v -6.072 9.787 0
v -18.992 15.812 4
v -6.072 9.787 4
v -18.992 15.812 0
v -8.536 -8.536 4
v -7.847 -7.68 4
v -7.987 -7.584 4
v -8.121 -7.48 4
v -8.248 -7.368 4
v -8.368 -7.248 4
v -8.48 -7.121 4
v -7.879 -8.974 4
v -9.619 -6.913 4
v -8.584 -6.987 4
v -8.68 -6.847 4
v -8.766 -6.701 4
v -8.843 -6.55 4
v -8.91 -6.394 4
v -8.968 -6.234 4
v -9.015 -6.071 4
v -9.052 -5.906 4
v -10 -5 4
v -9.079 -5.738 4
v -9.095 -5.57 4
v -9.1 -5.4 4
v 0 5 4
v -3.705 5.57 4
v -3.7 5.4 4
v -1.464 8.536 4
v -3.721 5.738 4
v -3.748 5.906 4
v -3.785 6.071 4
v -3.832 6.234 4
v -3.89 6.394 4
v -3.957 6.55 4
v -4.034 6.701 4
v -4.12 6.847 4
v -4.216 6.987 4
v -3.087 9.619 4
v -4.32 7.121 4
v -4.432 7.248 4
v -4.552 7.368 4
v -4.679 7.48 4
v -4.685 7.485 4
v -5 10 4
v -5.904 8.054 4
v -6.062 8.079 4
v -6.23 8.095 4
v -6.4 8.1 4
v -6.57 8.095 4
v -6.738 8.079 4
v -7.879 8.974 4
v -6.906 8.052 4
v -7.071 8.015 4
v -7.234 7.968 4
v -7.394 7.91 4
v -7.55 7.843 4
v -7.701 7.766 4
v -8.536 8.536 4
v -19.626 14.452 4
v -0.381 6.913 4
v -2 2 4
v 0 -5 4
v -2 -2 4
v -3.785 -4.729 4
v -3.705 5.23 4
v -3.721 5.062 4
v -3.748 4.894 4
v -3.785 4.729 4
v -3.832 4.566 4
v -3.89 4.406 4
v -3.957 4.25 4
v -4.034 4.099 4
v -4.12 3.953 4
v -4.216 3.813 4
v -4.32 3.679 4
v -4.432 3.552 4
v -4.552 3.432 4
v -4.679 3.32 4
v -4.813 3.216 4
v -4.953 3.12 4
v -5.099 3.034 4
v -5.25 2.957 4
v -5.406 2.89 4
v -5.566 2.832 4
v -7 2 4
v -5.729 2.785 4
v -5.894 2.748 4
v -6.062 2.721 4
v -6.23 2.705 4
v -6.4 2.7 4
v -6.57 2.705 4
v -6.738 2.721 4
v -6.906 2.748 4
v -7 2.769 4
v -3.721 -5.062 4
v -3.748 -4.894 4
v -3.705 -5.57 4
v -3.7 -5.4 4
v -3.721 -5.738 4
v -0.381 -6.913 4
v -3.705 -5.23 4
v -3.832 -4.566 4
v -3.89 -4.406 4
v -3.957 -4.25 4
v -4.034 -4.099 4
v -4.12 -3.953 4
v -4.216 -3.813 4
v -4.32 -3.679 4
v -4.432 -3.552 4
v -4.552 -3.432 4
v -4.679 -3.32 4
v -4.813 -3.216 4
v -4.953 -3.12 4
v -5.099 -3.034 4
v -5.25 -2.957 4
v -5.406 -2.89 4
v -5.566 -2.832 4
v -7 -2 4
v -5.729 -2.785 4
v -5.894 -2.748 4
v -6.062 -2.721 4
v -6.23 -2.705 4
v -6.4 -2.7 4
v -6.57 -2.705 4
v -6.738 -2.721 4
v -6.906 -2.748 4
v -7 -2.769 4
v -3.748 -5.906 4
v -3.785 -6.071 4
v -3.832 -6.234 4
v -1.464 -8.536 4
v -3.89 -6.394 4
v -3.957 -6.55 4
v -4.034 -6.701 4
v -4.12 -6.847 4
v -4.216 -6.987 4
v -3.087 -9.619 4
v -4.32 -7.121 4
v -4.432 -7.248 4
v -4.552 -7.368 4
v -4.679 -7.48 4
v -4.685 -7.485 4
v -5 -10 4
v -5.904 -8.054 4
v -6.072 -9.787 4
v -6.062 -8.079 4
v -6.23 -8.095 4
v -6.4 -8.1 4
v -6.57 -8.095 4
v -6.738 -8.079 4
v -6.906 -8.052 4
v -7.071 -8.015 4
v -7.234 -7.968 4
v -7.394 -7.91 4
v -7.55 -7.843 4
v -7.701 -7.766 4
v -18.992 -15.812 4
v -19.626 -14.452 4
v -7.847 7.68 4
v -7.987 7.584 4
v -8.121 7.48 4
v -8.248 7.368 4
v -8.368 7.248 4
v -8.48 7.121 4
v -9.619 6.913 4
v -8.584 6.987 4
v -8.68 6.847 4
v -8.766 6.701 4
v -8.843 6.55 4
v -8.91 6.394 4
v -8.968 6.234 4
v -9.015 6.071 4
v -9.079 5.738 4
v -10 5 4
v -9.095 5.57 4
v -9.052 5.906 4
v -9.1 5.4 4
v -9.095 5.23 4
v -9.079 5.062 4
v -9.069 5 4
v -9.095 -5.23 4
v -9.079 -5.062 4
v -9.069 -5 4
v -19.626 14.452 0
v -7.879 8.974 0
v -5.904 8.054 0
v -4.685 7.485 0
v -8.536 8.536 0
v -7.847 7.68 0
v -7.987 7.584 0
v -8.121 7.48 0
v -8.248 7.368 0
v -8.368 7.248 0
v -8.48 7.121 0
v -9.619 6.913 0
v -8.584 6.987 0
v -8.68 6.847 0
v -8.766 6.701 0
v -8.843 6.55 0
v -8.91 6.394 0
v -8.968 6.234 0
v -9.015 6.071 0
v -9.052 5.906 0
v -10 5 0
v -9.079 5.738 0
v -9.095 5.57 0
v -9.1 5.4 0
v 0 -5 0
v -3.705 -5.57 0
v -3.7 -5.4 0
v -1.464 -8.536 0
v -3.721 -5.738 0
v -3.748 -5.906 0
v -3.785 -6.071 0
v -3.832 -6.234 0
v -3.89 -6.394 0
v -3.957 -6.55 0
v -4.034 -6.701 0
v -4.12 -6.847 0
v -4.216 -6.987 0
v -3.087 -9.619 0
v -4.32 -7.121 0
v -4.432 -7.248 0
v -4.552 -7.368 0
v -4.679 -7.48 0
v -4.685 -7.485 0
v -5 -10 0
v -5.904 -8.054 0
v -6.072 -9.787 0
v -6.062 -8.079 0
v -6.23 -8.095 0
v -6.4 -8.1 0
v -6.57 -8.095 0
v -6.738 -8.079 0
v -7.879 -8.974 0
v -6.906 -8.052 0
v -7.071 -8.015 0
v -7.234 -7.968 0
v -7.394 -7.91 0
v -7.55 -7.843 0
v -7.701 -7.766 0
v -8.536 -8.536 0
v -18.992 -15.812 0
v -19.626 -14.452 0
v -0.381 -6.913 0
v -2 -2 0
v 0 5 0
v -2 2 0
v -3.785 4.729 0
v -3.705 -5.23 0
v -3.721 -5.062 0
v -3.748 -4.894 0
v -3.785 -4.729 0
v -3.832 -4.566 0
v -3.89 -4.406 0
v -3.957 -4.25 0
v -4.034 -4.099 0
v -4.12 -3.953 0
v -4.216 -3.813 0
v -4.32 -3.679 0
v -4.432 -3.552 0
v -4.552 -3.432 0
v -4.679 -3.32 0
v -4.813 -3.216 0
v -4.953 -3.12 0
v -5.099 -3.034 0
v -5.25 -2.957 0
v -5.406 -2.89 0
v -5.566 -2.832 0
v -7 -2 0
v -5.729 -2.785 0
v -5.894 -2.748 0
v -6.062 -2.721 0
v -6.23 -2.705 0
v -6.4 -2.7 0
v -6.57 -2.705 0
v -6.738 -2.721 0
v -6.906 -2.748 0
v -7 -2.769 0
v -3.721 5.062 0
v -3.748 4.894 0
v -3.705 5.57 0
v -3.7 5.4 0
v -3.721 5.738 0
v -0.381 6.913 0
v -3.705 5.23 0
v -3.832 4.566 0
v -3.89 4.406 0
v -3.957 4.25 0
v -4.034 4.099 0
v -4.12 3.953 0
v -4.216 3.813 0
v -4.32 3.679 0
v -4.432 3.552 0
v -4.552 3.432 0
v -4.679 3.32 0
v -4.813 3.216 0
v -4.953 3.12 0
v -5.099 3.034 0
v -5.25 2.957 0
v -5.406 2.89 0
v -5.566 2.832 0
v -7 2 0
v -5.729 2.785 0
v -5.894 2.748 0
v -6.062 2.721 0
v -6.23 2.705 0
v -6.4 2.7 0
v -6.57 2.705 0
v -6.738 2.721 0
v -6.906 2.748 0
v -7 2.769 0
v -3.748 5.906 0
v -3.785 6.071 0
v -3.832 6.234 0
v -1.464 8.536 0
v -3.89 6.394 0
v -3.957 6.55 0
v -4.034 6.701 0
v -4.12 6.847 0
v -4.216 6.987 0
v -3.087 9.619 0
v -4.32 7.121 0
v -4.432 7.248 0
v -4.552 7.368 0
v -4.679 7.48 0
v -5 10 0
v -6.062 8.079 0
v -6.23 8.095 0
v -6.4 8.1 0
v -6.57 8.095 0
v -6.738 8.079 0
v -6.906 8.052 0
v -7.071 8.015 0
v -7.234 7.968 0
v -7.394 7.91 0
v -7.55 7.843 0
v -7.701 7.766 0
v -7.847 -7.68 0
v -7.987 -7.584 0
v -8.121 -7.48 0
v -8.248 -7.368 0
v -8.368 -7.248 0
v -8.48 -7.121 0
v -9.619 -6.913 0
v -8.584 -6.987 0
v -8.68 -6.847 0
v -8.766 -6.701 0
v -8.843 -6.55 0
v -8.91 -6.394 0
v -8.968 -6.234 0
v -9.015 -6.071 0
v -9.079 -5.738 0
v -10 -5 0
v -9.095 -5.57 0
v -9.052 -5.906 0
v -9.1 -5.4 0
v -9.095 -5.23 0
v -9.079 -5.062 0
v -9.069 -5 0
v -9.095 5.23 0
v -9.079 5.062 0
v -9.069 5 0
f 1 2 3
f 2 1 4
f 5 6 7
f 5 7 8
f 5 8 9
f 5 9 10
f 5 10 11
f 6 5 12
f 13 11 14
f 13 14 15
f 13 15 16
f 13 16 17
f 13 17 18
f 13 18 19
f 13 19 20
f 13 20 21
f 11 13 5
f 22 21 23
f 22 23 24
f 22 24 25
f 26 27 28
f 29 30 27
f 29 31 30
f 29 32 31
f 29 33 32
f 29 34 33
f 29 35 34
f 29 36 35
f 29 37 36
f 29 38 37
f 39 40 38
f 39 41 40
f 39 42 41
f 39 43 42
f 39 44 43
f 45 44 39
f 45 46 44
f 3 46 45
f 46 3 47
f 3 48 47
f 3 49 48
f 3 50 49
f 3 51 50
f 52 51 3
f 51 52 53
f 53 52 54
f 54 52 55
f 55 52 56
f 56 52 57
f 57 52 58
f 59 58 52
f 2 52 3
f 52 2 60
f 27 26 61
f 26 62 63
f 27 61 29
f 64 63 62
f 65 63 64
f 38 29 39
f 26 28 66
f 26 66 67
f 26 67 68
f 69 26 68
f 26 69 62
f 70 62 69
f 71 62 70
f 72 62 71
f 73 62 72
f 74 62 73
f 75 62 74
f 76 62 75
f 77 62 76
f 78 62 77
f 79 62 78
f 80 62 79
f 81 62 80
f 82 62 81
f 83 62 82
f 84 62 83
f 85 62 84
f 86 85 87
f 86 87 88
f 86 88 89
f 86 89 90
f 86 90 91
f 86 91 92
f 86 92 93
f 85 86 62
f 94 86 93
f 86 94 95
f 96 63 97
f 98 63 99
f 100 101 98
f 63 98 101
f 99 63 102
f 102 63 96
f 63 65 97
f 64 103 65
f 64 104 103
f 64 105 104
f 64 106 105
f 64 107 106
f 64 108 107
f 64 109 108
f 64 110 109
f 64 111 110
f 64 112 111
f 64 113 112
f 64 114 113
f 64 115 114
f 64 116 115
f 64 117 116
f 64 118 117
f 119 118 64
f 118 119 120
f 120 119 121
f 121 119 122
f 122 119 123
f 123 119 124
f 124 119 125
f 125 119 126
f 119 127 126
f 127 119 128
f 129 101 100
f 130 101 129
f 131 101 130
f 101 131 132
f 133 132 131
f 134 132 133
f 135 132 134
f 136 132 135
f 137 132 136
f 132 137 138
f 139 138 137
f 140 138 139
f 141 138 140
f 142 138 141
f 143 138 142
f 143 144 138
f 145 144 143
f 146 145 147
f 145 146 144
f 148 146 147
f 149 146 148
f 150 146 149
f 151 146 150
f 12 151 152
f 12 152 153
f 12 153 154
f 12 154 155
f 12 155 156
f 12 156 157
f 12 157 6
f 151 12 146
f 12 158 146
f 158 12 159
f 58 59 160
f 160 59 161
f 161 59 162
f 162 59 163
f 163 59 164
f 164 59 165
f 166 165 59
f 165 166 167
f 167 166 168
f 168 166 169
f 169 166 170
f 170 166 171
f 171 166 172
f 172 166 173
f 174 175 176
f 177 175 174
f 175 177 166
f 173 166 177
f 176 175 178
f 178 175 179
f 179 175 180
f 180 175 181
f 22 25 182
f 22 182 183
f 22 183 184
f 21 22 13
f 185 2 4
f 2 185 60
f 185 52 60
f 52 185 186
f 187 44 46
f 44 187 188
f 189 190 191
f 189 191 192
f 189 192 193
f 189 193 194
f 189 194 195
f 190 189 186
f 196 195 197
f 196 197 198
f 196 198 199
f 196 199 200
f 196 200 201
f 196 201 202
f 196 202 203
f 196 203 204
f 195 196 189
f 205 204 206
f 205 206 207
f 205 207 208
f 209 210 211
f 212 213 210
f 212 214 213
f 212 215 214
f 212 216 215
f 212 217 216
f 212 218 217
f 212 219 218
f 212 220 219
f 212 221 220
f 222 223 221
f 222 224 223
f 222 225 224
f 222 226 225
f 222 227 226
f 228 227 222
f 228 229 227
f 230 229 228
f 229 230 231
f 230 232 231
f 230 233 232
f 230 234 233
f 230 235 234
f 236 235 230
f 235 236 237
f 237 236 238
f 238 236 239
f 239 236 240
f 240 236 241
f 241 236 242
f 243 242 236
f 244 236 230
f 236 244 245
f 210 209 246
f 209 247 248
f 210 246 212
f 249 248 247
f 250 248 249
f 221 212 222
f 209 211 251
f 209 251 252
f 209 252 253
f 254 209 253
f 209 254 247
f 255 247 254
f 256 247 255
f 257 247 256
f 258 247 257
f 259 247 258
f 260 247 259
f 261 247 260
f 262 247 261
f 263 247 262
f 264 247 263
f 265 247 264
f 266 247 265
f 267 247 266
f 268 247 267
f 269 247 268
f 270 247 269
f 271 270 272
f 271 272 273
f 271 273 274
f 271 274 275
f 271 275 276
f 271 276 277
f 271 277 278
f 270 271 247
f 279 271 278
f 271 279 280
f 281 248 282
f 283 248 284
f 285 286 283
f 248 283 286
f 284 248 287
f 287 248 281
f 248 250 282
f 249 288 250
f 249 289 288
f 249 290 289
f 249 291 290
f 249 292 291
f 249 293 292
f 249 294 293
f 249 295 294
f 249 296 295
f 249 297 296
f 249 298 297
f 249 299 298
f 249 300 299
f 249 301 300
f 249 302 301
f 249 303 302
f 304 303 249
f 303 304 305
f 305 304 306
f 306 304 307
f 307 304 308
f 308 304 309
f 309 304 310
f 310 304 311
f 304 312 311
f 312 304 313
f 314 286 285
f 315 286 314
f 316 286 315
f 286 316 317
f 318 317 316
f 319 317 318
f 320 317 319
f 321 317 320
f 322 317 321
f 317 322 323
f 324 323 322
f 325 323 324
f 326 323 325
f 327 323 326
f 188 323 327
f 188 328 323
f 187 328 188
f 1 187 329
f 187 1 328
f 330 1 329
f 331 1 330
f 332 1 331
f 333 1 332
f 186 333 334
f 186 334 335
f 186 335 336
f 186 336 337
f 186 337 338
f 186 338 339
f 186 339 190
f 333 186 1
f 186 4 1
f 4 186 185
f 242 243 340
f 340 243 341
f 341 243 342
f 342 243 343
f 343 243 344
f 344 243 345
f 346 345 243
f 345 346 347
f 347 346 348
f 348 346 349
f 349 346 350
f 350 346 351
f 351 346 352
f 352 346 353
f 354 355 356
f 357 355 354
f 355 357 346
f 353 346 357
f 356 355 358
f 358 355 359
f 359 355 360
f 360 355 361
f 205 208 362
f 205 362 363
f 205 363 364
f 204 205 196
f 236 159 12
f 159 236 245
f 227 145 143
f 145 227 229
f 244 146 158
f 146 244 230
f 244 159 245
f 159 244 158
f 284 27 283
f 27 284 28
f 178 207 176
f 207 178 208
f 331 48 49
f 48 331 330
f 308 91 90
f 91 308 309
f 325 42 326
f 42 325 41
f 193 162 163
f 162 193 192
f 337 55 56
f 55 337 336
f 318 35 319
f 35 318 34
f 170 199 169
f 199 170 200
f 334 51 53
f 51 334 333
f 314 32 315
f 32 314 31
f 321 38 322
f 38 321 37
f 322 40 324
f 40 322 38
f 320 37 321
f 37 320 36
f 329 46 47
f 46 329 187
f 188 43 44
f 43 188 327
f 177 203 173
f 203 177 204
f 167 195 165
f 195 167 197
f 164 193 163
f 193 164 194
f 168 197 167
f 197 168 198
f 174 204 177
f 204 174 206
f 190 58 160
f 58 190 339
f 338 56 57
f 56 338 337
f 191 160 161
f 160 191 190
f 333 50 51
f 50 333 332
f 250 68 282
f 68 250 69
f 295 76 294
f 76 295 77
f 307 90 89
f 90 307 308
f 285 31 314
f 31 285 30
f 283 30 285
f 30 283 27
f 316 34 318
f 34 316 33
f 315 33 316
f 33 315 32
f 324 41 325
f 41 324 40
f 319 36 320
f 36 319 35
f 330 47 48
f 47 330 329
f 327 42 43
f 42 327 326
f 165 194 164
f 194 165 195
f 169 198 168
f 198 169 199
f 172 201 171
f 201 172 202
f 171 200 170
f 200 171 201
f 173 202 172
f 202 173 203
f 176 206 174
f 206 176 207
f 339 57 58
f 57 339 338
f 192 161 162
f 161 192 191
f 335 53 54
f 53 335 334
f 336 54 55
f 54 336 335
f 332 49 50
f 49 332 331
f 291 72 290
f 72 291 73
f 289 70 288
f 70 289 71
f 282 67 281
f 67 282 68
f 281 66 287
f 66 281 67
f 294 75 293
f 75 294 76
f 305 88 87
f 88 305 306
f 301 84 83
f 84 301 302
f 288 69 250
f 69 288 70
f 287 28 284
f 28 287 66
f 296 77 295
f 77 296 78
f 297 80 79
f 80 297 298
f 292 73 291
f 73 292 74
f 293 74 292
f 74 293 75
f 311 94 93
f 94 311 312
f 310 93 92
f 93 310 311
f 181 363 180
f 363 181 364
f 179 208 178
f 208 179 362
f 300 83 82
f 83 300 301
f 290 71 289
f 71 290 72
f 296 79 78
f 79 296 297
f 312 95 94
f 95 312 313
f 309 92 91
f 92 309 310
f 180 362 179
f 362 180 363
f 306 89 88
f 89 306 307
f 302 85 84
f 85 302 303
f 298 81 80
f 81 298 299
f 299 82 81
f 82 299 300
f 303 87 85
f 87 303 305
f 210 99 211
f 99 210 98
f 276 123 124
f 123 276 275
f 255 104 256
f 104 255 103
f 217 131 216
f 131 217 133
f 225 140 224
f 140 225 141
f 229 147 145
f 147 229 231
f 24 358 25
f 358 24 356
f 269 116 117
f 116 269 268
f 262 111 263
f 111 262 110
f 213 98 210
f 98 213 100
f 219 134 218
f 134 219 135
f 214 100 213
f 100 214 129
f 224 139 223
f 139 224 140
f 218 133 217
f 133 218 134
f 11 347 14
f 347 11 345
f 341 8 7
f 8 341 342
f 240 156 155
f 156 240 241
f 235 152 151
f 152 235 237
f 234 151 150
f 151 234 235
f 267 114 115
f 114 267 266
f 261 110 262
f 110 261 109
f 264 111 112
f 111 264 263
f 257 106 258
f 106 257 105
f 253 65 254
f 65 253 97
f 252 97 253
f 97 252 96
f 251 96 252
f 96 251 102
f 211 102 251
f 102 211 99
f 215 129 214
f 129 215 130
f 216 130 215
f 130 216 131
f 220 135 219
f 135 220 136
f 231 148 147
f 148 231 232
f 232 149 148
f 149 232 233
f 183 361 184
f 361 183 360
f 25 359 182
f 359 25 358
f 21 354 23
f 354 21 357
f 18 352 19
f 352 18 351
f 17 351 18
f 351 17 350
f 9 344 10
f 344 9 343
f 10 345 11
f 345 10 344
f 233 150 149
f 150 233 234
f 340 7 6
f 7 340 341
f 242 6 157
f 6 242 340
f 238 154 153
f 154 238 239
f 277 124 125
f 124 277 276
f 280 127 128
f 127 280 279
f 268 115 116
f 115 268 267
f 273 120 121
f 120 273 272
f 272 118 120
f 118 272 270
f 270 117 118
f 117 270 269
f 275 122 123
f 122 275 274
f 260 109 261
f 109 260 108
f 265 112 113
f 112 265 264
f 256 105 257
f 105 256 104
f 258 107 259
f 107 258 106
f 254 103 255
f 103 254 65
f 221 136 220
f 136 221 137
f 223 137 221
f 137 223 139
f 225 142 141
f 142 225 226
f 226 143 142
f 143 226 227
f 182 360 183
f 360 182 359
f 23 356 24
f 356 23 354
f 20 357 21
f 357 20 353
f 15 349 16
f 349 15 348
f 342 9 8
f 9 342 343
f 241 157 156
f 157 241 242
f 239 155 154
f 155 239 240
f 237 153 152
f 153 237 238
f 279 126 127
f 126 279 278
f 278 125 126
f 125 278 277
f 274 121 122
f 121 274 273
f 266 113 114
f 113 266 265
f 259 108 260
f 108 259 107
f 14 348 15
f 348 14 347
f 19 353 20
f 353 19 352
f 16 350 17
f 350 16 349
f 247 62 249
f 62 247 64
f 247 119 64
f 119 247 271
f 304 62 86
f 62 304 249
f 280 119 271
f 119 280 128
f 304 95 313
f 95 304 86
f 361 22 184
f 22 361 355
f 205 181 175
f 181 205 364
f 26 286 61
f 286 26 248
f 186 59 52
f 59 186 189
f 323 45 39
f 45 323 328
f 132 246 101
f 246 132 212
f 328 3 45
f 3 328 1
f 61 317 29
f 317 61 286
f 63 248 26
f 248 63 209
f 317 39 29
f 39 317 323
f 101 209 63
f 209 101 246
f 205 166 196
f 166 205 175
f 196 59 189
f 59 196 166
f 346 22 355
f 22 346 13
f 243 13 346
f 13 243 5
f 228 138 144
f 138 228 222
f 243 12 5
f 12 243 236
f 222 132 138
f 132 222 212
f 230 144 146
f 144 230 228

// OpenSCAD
//include <relativity.scad>

radio_borde = 10/2;
radio_pajita = 5.4/2;
altura = 4;


varandilla();
difference() {
  difference() {
    soporte(altura);
  }
  taladros_pagitas();
  quitar_material();
}


module soporte(altura) {
  posicion_soporte = [-5, 5, 0];
  hull() {
    translate(posicion_soporte)
    cylinder(r=radio_borde, h=altura);

    mirror([0, 1, 0])
      translate(posicion_soporte)
      cylinder(r=radio_borde, h=altura);

  }
}

module varandilla() {
  translate([-1.5, 6, 0]) {
    rotate([0, 0, 65]) {
      cube(size=[1.5, 20, 4]);
    }
  }
  mirror([0, 1, 0]) {
    translate([-1.5, 6, 0]) {
      rotate([0, 0, 65]) {
        cube(size=[1.5, 20, 4]);
      }
    }
  }

}

module taladros_pagitas() {
  altura_taladro = 12;
  posicion_taladro = [-6.4, 5.4, -1];

    translate(posicion_taladro)
      cylinder(r=radio_pajita, h=altura_taladro, $fn=100);

      mirror([0, 1, 0])
        translate(posicion_taladro)
        cylinder(r=radio_pajita, h=altura_taladro, $fn=100);
}

module quitar_material() {
  translate([-17, -2, 0])
    cube(size=[15, 4, 10]);
  translate([-12, -5, 0])
    cube(size=[5, 10, 10]);
}
